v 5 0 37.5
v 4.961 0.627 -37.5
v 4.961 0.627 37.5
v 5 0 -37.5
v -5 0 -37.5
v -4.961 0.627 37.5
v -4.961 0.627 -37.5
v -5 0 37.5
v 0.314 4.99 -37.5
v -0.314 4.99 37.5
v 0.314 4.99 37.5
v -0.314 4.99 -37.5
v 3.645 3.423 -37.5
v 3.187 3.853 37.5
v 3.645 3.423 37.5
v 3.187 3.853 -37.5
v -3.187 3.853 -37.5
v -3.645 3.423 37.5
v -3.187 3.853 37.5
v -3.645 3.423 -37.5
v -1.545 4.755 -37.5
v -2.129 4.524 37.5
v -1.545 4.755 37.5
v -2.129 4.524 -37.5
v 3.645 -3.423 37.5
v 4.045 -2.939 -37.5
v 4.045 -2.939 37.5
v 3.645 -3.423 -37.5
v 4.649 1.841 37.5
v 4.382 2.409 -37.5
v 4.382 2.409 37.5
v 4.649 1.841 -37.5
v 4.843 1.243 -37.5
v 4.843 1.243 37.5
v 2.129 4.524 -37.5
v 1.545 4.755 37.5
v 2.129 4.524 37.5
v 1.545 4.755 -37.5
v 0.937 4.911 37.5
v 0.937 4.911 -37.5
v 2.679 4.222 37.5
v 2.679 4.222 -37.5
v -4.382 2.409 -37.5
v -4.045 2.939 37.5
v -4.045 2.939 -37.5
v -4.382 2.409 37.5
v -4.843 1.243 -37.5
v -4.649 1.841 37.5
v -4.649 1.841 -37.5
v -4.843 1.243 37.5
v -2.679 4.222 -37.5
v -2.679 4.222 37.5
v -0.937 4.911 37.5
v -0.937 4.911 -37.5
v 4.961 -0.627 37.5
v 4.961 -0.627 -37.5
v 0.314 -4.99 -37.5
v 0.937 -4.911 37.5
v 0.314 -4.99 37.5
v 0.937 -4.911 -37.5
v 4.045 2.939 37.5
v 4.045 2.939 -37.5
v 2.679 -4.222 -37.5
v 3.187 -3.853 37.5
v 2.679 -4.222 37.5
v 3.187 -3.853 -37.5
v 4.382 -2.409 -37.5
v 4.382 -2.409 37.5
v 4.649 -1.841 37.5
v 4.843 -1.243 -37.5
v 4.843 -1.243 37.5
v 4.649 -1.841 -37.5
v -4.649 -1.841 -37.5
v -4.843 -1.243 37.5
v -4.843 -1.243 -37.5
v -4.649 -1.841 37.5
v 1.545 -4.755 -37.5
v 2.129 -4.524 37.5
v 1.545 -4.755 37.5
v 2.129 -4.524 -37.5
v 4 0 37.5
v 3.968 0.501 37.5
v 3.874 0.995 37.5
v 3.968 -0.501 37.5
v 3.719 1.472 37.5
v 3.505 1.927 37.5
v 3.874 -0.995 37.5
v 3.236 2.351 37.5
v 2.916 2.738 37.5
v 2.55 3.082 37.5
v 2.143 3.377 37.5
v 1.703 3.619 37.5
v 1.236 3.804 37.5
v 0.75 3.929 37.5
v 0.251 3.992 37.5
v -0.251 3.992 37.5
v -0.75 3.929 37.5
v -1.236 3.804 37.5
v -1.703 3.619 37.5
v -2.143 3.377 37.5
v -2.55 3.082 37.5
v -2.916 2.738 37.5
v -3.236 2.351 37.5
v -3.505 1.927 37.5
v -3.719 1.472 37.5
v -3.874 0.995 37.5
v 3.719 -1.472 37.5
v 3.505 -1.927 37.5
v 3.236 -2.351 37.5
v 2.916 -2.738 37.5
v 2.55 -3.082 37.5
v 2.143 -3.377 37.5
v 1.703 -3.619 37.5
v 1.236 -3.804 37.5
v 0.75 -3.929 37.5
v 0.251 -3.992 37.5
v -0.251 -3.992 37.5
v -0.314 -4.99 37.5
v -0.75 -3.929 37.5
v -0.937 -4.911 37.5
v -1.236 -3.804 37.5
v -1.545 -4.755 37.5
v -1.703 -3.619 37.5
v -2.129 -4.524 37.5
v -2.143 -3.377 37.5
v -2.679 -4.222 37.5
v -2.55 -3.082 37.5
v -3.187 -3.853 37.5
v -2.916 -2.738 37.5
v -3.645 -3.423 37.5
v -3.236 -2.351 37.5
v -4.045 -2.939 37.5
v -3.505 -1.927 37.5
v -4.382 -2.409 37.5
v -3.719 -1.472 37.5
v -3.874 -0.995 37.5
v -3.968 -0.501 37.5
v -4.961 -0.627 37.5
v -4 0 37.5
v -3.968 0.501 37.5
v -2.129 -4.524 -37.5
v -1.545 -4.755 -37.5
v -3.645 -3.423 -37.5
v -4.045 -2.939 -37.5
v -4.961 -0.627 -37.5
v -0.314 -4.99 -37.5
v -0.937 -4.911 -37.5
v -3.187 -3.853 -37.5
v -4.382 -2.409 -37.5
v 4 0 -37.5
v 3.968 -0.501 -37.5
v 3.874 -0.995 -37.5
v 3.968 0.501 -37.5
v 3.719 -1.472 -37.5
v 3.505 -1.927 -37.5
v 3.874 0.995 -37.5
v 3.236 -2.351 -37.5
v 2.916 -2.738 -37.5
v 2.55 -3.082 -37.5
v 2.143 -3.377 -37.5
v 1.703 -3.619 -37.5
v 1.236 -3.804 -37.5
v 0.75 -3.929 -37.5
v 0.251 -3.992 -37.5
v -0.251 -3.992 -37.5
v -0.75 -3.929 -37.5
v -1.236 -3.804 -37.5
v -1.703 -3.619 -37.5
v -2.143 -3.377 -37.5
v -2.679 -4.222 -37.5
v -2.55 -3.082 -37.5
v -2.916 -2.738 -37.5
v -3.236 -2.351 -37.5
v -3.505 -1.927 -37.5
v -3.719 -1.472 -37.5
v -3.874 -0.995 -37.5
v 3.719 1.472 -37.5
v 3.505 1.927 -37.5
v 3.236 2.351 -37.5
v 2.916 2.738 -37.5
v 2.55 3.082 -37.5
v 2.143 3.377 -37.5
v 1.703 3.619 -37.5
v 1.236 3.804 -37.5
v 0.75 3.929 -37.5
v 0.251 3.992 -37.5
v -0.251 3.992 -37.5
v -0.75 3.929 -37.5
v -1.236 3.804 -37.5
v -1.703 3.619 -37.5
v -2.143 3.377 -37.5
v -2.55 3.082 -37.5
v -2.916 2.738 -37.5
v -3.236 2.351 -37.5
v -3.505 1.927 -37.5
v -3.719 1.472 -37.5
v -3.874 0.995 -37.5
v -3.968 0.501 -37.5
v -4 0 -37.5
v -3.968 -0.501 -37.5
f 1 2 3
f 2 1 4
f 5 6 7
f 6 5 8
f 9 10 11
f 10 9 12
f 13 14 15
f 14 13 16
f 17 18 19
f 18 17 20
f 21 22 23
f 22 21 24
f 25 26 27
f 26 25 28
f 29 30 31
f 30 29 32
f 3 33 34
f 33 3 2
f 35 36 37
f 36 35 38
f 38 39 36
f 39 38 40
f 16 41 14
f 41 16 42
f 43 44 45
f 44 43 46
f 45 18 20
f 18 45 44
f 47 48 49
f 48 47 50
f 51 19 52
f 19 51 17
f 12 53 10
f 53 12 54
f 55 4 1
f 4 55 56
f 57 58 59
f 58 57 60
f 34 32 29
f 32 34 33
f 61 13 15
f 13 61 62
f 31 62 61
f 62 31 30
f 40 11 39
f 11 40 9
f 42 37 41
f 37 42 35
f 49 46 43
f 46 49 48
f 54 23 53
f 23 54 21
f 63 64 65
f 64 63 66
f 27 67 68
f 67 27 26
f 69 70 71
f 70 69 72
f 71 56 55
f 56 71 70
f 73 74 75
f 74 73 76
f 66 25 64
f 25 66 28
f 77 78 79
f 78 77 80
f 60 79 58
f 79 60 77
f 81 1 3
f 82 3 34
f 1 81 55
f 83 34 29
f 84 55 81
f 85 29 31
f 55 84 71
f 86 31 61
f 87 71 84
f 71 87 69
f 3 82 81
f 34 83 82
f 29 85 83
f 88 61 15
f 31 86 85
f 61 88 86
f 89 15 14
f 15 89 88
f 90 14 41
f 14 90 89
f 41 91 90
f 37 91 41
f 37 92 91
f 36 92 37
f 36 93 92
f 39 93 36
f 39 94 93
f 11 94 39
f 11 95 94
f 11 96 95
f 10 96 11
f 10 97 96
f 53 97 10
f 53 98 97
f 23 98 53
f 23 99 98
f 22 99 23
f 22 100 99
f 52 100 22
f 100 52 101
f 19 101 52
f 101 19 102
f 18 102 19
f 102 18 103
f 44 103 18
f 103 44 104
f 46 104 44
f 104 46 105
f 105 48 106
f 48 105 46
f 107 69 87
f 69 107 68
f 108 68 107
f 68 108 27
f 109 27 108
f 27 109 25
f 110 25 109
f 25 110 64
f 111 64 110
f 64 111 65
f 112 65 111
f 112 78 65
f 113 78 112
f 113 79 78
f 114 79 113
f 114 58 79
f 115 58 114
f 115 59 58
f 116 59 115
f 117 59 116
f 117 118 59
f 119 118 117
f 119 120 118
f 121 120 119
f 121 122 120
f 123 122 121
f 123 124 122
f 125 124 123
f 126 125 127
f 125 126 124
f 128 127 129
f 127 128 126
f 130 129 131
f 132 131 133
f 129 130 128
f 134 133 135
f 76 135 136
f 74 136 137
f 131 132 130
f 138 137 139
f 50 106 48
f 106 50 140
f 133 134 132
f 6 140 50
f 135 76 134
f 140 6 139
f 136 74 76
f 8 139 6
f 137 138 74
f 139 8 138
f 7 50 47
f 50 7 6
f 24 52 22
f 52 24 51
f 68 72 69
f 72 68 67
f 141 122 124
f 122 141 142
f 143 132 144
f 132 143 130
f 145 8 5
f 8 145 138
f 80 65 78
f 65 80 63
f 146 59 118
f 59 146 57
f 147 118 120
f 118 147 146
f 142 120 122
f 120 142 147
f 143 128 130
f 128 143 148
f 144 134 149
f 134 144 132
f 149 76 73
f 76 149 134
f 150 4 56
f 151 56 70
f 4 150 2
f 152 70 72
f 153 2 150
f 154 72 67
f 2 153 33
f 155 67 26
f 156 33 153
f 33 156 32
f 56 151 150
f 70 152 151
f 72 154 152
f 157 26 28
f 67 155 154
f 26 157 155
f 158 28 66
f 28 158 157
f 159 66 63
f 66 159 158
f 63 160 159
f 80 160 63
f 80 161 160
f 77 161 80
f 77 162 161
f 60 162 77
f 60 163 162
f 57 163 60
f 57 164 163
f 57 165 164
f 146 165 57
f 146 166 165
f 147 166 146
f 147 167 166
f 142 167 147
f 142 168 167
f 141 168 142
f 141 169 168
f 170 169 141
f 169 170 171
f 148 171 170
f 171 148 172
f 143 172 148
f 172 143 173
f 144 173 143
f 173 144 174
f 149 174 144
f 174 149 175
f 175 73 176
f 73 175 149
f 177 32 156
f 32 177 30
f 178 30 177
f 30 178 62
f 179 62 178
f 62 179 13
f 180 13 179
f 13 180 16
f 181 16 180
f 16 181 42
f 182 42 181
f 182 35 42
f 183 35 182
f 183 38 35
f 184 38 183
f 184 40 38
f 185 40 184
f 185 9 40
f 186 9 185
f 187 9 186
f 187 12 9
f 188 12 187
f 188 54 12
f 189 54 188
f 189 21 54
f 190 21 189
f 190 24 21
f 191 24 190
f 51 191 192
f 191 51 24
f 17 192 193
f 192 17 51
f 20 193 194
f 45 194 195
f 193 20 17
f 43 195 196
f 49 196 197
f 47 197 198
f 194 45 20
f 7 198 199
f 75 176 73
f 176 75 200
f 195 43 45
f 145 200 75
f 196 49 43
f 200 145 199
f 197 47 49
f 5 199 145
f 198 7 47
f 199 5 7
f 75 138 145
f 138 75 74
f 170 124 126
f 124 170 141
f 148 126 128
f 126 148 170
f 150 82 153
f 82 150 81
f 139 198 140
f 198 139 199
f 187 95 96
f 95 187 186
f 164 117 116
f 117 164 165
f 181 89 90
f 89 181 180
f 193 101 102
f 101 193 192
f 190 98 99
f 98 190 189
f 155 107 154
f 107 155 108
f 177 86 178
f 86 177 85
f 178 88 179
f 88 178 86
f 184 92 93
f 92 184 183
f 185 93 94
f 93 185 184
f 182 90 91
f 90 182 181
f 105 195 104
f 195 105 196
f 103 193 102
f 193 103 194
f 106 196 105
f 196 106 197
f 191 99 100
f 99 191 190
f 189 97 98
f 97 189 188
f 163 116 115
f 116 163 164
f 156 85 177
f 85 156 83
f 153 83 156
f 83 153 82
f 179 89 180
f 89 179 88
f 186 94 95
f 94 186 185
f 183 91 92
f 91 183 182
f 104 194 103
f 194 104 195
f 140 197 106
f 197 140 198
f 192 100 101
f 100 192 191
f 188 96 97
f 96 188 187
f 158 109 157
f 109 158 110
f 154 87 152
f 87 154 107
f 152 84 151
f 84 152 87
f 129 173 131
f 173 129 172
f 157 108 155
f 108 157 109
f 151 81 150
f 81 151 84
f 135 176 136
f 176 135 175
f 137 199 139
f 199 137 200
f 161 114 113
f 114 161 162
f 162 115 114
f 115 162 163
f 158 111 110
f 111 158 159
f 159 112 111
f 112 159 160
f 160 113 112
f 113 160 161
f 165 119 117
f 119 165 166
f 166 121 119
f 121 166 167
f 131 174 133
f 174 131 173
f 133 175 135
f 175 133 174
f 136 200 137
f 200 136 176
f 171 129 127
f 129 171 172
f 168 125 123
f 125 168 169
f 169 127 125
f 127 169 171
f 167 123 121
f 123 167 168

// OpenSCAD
$fn = 50;


difference() {
	union() {
		translate(v = [0, 0, -37.5000000000]) {
			cylinder(h = 75, r = 5.0000000000);
		}
	}
	union() {
		translate(v = [0, 0, -100.0000000000]) {
			cylinder(h = 200, r = 4.0000000000);
		}
	}
}
